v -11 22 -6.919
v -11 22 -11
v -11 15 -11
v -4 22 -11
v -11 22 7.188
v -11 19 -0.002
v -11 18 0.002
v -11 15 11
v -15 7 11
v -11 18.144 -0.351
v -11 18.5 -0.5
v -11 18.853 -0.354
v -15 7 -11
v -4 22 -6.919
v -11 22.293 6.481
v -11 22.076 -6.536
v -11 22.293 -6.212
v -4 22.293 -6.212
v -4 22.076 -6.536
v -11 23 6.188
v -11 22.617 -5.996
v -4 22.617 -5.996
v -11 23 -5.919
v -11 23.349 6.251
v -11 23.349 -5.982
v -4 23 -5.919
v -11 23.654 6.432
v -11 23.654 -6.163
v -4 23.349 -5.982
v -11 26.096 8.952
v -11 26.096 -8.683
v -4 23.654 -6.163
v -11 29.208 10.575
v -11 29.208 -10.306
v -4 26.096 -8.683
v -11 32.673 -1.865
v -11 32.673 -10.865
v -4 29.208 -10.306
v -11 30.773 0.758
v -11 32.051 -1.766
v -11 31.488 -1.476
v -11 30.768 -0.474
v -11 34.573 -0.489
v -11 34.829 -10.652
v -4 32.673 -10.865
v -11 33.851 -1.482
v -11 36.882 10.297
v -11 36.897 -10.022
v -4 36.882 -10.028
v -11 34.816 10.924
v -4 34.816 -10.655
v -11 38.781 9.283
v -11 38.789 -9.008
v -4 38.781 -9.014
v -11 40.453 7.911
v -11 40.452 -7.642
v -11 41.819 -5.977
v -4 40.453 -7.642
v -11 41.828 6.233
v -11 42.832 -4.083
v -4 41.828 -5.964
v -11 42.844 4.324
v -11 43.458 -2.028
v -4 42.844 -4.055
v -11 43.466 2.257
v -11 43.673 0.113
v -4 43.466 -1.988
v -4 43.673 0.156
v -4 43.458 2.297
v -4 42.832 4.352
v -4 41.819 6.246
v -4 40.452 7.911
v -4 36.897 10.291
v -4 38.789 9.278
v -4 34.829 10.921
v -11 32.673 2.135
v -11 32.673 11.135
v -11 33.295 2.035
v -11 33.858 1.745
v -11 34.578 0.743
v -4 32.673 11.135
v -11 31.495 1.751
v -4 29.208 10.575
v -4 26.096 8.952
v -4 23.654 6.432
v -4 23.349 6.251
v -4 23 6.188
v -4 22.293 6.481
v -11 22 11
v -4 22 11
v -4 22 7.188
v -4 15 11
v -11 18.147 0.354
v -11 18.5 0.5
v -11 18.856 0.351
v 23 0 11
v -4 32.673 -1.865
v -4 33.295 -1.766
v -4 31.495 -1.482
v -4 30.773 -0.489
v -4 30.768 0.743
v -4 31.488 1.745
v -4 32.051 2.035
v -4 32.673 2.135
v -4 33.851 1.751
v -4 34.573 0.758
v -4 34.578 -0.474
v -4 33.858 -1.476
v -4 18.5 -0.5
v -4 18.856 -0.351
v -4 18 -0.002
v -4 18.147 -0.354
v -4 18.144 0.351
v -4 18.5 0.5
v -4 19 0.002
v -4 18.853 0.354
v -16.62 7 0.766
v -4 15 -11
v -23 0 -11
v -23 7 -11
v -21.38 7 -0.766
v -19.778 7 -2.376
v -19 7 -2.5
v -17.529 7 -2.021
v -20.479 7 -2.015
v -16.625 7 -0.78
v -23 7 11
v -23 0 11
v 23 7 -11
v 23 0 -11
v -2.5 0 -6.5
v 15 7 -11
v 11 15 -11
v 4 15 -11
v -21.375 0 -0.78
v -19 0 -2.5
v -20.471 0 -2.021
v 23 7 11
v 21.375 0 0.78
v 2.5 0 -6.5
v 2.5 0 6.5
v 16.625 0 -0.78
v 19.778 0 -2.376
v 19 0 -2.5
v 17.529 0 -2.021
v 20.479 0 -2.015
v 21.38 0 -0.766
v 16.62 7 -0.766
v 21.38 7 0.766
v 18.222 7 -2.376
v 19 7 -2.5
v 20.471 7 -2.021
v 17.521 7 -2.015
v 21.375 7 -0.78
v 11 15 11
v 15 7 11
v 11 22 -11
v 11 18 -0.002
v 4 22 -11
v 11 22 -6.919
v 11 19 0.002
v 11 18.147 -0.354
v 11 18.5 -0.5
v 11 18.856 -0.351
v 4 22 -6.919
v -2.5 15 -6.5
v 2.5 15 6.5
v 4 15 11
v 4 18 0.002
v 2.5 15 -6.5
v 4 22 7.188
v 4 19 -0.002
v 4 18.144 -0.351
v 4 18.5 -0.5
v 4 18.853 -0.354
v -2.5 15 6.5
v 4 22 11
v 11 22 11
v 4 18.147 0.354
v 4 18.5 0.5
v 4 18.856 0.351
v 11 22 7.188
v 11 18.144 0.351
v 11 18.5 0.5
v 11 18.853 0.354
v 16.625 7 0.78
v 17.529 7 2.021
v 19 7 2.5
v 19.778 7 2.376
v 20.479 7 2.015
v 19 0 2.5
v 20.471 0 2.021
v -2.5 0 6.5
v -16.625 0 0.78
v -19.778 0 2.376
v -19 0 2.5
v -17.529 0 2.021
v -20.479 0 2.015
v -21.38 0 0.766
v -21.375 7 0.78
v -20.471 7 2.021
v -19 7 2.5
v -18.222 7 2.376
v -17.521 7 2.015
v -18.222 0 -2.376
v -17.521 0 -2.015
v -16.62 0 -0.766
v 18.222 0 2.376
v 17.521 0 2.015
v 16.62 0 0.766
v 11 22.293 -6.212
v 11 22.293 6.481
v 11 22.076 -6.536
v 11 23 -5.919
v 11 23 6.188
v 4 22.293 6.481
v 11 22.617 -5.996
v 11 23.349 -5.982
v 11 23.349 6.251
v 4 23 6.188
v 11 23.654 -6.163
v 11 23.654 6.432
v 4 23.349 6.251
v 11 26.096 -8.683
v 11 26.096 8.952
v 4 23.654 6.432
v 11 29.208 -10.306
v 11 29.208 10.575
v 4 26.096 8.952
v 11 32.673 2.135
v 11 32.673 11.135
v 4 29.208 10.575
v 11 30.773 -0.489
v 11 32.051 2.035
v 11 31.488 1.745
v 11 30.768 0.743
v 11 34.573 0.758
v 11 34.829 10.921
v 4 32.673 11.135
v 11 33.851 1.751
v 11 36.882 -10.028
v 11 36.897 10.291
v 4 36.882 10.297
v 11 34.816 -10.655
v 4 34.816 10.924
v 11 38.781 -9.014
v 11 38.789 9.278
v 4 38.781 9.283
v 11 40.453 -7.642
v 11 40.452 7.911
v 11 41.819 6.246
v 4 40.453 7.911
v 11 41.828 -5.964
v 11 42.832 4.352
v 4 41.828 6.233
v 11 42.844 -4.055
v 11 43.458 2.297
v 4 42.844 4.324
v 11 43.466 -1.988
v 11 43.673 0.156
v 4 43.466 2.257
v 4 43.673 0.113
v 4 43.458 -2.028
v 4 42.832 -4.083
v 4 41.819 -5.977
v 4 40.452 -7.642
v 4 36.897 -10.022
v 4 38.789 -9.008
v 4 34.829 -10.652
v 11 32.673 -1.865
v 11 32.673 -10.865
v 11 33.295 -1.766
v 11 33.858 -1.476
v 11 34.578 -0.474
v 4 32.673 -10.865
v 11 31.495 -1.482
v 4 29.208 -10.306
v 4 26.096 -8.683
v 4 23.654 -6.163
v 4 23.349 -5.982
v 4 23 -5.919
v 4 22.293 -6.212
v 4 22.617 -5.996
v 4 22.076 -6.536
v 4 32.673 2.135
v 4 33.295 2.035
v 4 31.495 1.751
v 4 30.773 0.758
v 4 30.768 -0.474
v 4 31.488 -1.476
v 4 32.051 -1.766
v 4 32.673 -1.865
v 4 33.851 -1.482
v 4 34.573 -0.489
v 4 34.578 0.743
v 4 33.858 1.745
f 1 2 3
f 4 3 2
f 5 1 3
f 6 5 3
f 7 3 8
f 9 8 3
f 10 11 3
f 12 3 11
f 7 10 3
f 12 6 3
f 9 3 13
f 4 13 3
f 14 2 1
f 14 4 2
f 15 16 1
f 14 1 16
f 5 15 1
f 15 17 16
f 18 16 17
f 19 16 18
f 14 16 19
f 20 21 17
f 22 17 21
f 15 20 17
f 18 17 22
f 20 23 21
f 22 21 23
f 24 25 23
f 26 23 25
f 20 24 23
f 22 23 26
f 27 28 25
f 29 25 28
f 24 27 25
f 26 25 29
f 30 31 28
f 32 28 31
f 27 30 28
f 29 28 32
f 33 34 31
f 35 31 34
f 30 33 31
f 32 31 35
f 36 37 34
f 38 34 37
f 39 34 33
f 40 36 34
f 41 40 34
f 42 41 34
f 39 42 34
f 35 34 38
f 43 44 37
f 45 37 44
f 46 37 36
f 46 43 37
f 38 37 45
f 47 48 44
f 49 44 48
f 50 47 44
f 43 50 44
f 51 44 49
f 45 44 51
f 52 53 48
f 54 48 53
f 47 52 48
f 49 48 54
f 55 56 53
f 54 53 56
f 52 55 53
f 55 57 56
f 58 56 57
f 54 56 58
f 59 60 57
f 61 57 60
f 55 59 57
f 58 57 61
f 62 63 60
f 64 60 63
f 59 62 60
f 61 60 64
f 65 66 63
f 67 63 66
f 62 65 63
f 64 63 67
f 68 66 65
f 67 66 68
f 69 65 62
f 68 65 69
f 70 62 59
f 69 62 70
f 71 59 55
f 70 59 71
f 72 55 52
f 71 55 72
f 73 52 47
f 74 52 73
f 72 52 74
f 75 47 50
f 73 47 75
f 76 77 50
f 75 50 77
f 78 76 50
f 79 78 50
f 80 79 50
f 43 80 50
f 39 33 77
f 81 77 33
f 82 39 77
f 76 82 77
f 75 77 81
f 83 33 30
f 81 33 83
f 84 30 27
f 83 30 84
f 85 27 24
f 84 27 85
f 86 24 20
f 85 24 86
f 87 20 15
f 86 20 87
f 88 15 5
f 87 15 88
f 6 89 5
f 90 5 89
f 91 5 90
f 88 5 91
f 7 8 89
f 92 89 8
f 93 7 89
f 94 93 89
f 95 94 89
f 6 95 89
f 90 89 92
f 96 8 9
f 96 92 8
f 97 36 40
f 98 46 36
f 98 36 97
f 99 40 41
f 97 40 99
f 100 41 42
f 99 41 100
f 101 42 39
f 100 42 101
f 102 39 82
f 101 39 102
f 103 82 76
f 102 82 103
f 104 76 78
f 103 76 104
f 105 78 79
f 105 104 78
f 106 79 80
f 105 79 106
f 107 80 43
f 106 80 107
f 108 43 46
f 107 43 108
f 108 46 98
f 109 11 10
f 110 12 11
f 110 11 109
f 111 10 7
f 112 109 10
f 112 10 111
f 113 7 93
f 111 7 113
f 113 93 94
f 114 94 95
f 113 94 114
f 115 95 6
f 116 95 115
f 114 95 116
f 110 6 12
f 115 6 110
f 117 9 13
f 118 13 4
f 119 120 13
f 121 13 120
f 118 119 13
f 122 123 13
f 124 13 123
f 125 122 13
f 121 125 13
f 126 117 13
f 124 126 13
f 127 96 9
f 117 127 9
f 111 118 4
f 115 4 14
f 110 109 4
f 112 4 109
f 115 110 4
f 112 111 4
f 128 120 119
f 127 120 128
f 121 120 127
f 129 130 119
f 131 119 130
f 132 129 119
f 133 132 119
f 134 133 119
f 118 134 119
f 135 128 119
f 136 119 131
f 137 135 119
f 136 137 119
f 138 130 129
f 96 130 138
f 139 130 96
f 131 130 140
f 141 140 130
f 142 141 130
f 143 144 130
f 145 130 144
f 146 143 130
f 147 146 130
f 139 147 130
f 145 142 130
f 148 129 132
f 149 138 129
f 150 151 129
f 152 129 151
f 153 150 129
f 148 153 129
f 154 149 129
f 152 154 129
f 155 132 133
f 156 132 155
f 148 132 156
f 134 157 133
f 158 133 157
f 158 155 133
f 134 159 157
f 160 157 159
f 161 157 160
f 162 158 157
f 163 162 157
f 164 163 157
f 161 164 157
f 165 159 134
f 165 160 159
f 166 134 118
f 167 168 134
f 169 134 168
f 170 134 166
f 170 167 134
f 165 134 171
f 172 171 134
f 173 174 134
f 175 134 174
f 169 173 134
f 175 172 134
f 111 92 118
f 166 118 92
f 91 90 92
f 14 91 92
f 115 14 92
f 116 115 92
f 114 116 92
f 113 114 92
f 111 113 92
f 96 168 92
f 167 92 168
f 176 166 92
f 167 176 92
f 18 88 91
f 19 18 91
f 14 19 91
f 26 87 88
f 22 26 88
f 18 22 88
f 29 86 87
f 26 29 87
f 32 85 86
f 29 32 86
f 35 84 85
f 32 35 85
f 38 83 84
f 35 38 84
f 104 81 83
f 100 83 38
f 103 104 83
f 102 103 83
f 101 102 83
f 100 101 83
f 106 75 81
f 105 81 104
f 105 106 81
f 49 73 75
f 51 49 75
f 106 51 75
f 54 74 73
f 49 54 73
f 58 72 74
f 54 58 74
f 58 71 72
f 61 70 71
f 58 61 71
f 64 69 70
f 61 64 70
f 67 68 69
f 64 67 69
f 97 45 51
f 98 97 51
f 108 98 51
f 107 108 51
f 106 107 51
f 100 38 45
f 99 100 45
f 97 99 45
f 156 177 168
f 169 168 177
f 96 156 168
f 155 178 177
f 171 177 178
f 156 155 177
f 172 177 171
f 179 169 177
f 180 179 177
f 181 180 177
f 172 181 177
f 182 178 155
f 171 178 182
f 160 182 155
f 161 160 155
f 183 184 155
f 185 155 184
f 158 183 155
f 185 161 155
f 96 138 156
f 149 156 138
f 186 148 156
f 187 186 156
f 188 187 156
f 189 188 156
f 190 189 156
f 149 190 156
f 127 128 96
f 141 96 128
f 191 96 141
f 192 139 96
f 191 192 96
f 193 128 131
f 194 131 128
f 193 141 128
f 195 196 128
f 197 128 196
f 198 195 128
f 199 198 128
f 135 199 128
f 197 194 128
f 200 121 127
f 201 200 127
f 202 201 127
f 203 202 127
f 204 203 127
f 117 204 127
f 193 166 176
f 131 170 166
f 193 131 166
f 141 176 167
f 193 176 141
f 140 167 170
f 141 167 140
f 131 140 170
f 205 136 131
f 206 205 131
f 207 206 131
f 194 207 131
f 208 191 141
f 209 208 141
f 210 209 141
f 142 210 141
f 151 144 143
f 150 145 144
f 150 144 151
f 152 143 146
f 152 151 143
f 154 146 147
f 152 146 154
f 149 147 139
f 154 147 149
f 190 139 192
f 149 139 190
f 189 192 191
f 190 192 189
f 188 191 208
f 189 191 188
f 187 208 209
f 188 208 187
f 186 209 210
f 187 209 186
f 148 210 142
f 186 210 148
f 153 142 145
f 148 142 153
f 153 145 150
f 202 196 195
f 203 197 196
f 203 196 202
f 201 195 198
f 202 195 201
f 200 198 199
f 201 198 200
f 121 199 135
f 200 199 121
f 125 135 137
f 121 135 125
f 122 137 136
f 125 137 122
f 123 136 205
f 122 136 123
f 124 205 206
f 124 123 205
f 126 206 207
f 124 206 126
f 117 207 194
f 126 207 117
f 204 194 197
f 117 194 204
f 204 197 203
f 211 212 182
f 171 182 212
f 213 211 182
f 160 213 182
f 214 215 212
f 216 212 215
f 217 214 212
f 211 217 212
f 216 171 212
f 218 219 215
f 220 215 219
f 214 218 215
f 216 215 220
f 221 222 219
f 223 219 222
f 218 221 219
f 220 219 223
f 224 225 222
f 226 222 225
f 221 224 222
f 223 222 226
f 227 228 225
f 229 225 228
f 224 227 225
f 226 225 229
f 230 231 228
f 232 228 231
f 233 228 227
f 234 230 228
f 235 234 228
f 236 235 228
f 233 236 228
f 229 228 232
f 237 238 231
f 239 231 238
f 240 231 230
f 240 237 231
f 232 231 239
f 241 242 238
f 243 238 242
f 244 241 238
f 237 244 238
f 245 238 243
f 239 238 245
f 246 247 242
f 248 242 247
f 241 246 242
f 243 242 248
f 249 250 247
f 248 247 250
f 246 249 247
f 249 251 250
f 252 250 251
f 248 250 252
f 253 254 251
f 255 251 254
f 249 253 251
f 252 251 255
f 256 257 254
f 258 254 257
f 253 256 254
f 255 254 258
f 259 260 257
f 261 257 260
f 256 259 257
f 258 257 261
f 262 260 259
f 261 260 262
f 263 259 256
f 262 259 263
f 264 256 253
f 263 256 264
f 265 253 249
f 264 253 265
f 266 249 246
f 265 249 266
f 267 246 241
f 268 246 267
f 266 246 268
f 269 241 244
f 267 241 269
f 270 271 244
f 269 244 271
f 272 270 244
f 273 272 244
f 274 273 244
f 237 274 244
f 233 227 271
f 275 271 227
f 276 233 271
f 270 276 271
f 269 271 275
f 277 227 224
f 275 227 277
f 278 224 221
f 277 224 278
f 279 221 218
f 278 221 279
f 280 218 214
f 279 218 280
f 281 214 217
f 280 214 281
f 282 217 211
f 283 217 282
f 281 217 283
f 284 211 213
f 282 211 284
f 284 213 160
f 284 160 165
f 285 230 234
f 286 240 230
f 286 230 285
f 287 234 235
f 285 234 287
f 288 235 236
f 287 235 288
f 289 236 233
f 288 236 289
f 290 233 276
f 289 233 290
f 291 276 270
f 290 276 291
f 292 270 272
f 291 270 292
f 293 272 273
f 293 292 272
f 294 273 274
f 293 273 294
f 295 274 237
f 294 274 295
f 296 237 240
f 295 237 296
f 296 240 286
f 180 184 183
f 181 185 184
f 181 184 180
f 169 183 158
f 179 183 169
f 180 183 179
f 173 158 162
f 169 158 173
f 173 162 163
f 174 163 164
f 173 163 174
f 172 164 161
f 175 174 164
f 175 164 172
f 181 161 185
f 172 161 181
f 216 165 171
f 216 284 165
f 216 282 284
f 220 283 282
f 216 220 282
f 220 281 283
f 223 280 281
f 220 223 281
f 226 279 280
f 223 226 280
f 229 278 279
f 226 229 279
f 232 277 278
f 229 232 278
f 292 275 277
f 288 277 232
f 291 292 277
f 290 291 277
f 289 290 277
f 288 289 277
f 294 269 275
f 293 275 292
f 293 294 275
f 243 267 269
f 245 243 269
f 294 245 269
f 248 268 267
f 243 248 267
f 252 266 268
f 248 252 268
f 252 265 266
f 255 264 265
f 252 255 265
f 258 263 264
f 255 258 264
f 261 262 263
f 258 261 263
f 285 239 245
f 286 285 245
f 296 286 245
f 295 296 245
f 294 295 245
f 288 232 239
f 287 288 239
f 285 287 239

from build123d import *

# Parameters (mm, degrees)
SKETCH1_W                      = 22
SKETCH1_H                      = 22
BODY_BASE_DEPTH                = 20
SKETCH8_W                      = 22
SKETCH8_H                      = 5
CHANNEL_FOR_TENDONS_DEPTH      = 4
BOSS_EXTRUDE2_DEPTH            = 7
LPATTERN1_COUNT                = 2
LPATTERN1_PITCH                = 15
SKETCH11_R                     = 2
CONNECT_TO_GRIPPERS_DEPTH      = 23
BOSS_EXTRUDE3_DEPTH            = 11
SKETCH13_R                     = 2.5
CUT_EXTRUDE3_DEPTH             = 8
SKETCH16_W                     = 5
SKETCH16_H                     = 13
TENDON_PASS_THROUGH_HOLE_DEPTH = 16
SKETCH17_R                     = 0.5
TENDON_PIN_HOLE_DEPTH          = 35


with BuildPart() as part:
    # Sketch1 → Body Base (new body)
    with BuildSketch(Plane(origin=(0, 0, 0), x_dir=(1, 0, 0), z_dir=(0, 1, 0))):
        Rectangle(SKETCH1_W, SKETCH1_H)
    extrude(amount=BODY_BASE_DEPTH)

    # Sketch8 → Channel for Tendons (cut, symmetric)
    with BuildSketch(Plane(origin=(0, 0, 0), x_dir=(0, 0, -1), z_dir=(1, 0, 0))):
        with Locations((0, 17.5)):
            Rectangle(SKETCH8_W, SKETCH8_H)
    extrude(amount=CHANNEL_FOR_TENDONS_DEPTH, both=True, mode=Mode.SUBTRACT)

    # Sketch9 → Boss-Extrude2 (add)
    with BuildSketch(Plane(origin=(11, 0, 0), x_dir=(0, 0, -1), z_dir=(1, 0, 0))):
        with BuildLine():
            Line((-11, 20), (-11, 22))
            Line((-11, 22), (-7.188338132, 22))
            ThreePointArc((-7.188338132, 22), (-6.278997638, 22.58394728), (-6.43167096, 23.653800269))
            ThreePointArc((-6.43167096, 23.653800269), (-0.13450677, 43.67298666), (6.16265742, 23.653800269))
            ThreePointArc((6.16265742, 23.653800269), (6.009984097, 22.58394728), (6.919324592, 22))
            Line((6.919324592, 22), (11, 22))
            Line((11, 22), (11, 20))
            Line((11, 20), (-11, 20))
        make_face()
    boss_extrude2 = extrude(amount=-BOSS_EXTRUDE2_DEPTH)

    # LPattern1: Boss-Extrude2 ×2
    with Locations(*[(-i * LPATTERN1_PITCH, 0, 0) for i in range(1, LPATTERN1_COUNT)]):
        add(boss_extrude2)

    # Sketch11 → Connect to Grippers (cut, through all)
    with BuildSketch(Plane(origin=(11, 0, 0), x_dir=(0, 0, -1), z_dir=(1, 0, 0))):
        with Locations((-0.13450677, 32.67298666)):
            Circle(SKETCH11_R)
    extrude(amount=-CONNECT_TO_GRIPPERS_DEPTH, mode=Mode.SUBTRACT)

    # Sketch12 → Boss-Extrude3 (add, symmetric)
    with BuildSketch(Plane.XY):
        Polygon((-11, 15), (-15, 7), (-23, 7), (-23, 0), (-11, 0), align=None)
        Polygon((11, 15), (15, 7), (23, 7), (23, 0), (11, 0), align=None)
    extrude(amount=BOSS_EXTRUDE3_DEPTH, both=True)

    # Sketch13 → Cut-Extrude3 (cut, through all)
    with BuildSketch(Plane(origin=(0, 7, 0), x_dir=(1, 0, 0), z_dir=(0, 1, 0))):
        with Locations((-19, 0)):
            Circle(SKETCH13_R)
        with Locations((19, 0)):
            Circle(SKETCH13_R)
    extrude(amount=-CUT_EXTRUDE3_DEPTH, mode=Mode.SUBTRACT)

    # Sketch16 → Tendon Pass Through Hole (cut, through all)
    with BuildSketch(Plane(origin=(0, 15, 0), x_dir=(1, 0, 0), z_dir=(0, 1, 0))):
        Rectangle(SKETCH16_W, SKETCH16_H)
    extrude(amount=-TENDON_PASS_THROUGH_HOLE_DEPTH, mode=Mode.SUBTRACT)

    # Sketch17 → Tendon Pin Hole (cut, through all)
    with BuildSketch(Plane.ZY.offset(11)):
        with Locations((0, 18.5)):
            Circle(SKETCH17_R)
    extrude(amount=-TENDON_PIN_HOLE_DEPTH, mode=Mode.SUBTRACT)


solid = part.part
